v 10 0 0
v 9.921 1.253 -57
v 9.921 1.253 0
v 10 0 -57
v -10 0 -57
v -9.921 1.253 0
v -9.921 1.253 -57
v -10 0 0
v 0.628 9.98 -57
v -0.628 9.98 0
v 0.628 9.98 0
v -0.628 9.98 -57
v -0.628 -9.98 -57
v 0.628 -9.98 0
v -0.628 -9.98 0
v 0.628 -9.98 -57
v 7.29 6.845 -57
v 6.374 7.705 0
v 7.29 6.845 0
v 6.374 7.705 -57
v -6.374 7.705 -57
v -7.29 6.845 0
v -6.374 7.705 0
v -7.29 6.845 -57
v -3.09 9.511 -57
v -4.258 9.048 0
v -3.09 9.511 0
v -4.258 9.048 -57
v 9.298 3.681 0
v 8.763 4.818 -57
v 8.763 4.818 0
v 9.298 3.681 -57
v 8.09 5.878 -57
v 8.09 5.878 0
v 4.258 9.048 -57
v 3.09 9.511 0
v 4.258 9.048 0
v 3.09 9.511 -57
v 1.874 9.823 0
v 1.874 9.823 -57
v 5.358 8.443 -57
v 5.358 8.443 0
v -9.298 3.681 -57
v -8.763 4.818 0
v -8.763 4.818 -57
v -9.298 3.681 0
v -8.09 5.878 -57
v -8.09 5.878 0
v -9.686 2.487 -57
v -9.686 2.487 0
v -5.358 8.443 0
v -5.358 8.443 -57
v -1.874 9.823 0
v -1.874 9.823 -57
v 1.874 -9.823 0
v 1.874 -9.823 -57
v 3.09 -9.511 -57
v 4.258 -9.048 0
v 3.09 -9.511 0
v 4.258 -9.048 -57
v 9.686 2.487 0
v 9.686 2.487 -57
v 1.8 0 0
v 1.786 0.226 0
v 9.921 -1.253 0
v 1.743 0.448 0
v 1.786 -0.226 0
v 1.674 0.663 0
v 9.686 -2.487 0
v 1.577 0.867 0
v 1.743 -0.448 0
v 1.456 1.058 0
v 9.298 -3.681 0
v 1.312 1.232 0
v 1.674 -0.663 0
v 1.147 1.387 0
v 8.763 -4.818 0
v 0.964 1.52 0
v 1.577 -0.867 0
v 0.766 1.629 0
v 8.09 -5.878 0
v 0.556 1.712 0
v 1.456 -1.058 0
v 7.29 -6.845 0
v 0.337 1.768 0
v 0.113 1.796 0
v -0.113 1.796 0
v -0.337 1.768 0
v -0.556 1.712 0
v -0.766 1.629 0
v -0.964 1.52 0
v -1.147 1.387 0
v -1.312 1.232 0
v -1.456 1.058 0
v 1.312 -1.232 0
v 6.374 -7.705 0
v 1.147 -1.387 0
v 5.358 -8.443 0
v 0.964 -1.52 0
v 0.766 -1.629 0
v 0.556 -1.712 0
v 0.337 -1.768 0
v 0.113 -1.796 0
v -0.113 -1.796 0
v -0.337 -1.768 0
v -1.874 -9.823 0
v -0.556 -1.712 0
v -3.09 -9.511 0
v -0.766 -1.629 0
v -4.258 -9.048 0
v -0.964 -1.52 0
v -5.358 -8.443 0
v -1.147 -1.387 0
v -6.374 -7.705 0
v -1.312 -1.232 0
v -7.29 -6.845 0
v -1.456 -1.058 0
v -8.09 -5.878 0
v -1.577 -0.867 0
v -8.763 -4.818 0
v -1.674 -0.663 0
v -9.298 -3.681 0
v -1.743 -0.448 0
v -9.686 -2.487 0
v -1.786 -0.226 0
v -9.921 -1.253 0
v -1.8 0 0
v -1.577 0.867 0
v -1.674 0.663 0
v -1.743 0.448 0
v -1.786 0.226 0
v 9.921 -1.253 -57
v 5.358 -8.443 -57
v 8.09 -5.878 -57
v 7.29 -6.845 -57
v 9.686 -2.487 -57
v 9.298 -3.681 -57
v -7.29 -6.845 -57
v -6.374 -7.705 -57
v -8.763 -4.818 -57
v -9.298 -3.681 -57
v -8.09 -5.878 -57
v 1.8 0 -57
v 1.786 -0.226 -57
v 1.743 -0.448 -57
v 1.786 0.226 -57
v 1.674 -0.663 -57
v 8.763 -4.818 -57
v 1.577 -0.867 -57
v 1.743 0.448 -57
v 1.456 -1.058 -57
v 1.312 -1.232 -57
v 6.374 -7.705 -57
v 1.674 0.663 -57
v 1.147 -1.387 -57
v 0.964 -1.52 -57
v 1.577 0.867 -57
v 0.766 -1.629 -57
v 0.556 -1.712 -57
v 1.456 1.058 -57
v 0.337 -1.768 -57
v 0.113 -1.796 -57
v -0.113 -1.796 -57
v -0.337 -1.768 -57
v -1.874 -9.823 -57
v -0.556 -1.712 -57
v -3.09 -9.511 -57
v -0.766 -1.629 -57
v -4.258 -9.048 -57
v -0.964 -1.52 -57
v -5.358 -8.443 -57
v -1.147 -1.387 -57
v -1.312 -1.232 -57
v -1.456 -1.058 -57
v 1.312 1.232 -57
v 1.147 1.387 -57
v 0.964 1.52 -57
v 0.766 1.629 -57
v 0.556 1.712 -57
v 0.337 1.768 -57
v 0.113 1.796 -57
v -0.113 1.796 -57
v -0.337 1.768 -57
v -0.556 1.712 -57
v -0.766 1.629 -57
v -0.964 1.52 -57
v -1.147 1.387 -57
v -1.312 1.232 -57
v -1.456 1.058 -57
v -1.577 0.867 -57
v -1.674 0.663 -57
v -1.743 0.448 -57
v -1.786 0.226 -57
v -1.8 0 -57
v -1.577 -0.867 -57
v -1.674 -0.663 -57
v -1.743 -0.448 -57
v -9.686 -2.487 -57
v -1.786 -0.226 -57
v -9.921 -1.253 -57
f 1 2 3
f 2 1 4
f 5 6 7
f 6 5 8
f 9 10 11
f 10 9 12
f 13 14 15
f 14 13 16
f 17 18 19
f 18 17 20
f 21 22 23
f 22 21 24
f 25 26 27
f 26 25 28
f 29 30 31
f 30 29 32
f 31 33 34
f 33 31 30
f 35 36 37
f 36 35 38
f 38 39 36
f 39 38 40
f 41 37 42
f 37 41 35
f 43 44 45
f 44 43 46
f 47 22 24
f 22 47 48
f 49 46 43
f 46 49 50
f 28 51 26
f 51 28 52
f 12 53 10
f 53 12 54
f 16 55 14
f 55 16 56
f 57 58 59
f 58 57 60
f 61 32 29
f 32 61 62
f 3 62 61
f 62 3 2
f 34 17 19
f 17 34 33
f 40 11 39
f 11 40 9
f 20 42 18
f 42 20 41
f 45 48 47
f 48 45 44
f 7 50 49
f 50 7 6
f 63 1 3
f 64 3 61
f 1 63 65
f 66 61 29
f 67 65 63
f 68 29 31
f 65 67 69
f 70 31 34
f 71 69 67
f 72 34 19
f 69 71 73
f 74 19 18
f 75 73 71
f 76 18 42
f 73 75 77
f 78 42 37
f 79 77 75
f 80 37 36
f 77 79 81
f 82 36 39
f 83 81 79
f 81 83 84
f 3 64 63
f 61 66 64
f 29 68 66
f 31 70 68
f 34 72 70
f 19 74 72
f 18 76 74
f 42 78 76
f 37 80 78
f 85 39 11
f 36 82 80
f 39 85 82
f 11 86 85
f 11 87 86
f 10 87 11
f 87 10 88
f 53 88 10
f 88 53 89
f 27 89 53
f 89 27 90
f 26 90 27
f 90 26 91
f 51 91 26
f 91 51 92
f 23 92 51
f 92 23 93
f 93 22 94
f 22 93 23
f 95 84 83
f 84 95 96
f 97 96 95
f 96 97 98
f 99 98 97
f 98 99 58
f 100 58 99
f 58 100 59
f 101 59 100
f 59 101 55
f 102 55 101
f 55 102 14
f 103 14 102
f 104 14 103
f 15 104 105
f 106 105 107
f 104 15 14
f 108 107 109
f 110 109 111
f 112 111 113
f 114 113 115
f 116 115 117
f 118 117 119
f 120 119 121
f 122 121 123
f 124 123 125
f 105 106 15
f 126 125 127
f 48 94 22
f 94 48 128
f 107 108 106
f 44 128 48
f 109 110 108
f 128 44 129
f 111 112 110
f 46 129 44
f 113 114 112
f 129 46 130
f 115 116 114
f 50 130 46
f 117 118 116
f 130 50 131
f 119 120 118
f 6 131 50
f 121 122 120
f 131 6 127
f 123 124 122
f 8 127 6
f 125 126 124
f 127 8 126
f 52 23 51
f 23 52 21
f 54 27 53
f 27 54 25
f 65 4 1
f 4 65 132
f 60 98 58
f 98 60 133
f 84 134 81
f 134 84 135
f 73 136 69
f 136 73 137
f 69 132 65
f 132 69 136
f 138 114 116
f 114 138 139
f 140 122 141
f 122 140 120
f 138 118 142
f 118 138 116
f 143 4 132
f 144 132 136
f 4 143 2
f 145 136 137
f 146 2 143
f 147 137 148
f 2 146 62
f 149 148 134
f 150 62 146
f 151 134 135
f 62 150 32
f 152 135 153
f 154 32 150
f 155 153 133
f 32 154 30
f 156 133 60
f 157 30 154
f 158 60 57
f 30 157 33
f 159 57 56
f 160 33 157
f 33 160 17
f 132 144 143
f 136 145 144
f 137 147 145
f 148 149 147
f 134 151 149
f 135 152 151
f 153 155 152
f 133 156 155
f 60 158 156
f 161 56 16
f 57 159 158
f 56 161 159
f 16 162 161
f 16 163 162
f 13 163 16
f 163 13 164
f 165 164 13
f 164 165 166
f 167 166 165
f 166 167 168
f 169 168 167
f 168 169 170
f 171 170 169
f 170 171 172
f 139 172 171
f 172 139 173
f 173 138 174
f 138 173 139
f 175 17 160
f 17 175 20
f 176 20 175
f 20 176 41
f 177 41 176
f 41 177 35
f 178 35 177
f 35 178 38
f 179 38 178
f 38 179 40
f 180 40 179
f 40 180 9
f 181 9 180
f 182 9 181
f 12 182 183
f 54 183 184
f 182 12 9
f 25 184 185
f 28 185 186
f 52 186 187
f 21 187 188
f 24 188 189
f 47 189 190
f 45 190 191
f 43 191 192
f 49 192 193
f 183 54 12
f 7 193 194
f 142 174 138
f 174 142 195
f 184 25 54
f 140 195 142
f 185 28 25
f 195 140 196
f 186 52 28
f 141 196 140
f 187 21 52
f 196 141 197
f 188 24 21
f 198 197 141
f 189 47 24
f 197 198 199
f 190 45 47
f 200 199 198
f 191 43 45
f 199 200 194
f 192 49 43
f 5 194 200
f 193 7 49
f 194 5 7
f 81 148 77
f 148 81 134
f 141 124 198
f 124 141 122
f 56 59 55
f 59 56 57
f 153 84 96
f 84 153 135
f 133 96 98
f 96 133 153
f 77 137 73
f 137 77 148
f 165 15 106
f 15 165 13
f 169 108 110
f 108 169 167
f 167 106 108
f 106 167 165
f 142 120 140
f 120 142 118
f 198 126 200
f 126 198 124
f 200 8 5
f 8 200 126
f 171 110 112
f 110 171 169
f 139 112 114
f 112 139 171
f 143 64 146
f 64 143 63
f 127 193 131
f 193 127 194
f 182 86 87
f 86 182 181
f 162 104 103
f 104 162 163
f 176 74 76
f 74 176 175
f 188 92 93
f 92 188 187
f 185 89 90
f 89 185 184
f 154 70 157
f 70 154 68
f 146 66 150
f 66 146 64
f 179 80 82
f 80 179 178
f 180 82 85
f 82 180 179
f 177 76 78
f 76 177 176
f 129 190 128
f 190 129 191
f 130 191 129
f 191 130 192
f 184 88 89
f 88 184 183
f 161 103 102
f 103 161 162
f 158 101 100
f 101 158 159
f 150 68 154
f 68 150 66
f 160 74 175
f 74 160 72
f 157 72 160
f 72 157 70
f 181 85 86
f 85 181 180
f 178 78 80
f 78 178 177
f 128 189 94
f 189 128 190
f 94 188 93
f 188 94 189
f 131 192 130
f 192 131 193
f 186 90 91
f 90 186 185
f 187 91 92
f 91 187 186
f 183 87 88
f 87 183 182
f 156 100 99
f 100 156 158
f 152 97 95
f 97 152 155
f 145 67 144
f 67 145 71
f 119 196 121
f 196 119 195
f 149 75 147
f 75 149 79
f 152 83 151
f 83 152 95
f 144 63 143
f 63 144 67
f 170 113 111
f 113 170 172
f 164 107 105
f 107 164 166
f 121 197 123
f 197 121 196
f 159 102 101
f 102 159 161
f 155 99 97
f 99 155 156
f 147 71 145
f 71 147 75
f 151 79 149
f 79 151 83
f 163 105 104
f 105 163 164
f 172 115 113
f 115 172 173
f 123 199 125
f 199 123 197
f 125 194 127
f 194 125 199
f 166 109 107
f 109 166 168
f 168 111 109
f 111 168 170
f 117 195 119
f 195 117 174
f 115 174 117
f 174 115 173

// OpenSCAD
$fn = 50;


difference() {
	union() {
		translate(v = [0, 0, -57.0000000000]) {
			cylinder(h = 57, r = 10.0000000000);
		}
		cylinder(h = 0, r = 13.0000000000);
	}
	union() {
		#translate(v = [0, 0, -57]) {
			cylinder(h = 57, r = 1.8000000000);
		}
	}
}
